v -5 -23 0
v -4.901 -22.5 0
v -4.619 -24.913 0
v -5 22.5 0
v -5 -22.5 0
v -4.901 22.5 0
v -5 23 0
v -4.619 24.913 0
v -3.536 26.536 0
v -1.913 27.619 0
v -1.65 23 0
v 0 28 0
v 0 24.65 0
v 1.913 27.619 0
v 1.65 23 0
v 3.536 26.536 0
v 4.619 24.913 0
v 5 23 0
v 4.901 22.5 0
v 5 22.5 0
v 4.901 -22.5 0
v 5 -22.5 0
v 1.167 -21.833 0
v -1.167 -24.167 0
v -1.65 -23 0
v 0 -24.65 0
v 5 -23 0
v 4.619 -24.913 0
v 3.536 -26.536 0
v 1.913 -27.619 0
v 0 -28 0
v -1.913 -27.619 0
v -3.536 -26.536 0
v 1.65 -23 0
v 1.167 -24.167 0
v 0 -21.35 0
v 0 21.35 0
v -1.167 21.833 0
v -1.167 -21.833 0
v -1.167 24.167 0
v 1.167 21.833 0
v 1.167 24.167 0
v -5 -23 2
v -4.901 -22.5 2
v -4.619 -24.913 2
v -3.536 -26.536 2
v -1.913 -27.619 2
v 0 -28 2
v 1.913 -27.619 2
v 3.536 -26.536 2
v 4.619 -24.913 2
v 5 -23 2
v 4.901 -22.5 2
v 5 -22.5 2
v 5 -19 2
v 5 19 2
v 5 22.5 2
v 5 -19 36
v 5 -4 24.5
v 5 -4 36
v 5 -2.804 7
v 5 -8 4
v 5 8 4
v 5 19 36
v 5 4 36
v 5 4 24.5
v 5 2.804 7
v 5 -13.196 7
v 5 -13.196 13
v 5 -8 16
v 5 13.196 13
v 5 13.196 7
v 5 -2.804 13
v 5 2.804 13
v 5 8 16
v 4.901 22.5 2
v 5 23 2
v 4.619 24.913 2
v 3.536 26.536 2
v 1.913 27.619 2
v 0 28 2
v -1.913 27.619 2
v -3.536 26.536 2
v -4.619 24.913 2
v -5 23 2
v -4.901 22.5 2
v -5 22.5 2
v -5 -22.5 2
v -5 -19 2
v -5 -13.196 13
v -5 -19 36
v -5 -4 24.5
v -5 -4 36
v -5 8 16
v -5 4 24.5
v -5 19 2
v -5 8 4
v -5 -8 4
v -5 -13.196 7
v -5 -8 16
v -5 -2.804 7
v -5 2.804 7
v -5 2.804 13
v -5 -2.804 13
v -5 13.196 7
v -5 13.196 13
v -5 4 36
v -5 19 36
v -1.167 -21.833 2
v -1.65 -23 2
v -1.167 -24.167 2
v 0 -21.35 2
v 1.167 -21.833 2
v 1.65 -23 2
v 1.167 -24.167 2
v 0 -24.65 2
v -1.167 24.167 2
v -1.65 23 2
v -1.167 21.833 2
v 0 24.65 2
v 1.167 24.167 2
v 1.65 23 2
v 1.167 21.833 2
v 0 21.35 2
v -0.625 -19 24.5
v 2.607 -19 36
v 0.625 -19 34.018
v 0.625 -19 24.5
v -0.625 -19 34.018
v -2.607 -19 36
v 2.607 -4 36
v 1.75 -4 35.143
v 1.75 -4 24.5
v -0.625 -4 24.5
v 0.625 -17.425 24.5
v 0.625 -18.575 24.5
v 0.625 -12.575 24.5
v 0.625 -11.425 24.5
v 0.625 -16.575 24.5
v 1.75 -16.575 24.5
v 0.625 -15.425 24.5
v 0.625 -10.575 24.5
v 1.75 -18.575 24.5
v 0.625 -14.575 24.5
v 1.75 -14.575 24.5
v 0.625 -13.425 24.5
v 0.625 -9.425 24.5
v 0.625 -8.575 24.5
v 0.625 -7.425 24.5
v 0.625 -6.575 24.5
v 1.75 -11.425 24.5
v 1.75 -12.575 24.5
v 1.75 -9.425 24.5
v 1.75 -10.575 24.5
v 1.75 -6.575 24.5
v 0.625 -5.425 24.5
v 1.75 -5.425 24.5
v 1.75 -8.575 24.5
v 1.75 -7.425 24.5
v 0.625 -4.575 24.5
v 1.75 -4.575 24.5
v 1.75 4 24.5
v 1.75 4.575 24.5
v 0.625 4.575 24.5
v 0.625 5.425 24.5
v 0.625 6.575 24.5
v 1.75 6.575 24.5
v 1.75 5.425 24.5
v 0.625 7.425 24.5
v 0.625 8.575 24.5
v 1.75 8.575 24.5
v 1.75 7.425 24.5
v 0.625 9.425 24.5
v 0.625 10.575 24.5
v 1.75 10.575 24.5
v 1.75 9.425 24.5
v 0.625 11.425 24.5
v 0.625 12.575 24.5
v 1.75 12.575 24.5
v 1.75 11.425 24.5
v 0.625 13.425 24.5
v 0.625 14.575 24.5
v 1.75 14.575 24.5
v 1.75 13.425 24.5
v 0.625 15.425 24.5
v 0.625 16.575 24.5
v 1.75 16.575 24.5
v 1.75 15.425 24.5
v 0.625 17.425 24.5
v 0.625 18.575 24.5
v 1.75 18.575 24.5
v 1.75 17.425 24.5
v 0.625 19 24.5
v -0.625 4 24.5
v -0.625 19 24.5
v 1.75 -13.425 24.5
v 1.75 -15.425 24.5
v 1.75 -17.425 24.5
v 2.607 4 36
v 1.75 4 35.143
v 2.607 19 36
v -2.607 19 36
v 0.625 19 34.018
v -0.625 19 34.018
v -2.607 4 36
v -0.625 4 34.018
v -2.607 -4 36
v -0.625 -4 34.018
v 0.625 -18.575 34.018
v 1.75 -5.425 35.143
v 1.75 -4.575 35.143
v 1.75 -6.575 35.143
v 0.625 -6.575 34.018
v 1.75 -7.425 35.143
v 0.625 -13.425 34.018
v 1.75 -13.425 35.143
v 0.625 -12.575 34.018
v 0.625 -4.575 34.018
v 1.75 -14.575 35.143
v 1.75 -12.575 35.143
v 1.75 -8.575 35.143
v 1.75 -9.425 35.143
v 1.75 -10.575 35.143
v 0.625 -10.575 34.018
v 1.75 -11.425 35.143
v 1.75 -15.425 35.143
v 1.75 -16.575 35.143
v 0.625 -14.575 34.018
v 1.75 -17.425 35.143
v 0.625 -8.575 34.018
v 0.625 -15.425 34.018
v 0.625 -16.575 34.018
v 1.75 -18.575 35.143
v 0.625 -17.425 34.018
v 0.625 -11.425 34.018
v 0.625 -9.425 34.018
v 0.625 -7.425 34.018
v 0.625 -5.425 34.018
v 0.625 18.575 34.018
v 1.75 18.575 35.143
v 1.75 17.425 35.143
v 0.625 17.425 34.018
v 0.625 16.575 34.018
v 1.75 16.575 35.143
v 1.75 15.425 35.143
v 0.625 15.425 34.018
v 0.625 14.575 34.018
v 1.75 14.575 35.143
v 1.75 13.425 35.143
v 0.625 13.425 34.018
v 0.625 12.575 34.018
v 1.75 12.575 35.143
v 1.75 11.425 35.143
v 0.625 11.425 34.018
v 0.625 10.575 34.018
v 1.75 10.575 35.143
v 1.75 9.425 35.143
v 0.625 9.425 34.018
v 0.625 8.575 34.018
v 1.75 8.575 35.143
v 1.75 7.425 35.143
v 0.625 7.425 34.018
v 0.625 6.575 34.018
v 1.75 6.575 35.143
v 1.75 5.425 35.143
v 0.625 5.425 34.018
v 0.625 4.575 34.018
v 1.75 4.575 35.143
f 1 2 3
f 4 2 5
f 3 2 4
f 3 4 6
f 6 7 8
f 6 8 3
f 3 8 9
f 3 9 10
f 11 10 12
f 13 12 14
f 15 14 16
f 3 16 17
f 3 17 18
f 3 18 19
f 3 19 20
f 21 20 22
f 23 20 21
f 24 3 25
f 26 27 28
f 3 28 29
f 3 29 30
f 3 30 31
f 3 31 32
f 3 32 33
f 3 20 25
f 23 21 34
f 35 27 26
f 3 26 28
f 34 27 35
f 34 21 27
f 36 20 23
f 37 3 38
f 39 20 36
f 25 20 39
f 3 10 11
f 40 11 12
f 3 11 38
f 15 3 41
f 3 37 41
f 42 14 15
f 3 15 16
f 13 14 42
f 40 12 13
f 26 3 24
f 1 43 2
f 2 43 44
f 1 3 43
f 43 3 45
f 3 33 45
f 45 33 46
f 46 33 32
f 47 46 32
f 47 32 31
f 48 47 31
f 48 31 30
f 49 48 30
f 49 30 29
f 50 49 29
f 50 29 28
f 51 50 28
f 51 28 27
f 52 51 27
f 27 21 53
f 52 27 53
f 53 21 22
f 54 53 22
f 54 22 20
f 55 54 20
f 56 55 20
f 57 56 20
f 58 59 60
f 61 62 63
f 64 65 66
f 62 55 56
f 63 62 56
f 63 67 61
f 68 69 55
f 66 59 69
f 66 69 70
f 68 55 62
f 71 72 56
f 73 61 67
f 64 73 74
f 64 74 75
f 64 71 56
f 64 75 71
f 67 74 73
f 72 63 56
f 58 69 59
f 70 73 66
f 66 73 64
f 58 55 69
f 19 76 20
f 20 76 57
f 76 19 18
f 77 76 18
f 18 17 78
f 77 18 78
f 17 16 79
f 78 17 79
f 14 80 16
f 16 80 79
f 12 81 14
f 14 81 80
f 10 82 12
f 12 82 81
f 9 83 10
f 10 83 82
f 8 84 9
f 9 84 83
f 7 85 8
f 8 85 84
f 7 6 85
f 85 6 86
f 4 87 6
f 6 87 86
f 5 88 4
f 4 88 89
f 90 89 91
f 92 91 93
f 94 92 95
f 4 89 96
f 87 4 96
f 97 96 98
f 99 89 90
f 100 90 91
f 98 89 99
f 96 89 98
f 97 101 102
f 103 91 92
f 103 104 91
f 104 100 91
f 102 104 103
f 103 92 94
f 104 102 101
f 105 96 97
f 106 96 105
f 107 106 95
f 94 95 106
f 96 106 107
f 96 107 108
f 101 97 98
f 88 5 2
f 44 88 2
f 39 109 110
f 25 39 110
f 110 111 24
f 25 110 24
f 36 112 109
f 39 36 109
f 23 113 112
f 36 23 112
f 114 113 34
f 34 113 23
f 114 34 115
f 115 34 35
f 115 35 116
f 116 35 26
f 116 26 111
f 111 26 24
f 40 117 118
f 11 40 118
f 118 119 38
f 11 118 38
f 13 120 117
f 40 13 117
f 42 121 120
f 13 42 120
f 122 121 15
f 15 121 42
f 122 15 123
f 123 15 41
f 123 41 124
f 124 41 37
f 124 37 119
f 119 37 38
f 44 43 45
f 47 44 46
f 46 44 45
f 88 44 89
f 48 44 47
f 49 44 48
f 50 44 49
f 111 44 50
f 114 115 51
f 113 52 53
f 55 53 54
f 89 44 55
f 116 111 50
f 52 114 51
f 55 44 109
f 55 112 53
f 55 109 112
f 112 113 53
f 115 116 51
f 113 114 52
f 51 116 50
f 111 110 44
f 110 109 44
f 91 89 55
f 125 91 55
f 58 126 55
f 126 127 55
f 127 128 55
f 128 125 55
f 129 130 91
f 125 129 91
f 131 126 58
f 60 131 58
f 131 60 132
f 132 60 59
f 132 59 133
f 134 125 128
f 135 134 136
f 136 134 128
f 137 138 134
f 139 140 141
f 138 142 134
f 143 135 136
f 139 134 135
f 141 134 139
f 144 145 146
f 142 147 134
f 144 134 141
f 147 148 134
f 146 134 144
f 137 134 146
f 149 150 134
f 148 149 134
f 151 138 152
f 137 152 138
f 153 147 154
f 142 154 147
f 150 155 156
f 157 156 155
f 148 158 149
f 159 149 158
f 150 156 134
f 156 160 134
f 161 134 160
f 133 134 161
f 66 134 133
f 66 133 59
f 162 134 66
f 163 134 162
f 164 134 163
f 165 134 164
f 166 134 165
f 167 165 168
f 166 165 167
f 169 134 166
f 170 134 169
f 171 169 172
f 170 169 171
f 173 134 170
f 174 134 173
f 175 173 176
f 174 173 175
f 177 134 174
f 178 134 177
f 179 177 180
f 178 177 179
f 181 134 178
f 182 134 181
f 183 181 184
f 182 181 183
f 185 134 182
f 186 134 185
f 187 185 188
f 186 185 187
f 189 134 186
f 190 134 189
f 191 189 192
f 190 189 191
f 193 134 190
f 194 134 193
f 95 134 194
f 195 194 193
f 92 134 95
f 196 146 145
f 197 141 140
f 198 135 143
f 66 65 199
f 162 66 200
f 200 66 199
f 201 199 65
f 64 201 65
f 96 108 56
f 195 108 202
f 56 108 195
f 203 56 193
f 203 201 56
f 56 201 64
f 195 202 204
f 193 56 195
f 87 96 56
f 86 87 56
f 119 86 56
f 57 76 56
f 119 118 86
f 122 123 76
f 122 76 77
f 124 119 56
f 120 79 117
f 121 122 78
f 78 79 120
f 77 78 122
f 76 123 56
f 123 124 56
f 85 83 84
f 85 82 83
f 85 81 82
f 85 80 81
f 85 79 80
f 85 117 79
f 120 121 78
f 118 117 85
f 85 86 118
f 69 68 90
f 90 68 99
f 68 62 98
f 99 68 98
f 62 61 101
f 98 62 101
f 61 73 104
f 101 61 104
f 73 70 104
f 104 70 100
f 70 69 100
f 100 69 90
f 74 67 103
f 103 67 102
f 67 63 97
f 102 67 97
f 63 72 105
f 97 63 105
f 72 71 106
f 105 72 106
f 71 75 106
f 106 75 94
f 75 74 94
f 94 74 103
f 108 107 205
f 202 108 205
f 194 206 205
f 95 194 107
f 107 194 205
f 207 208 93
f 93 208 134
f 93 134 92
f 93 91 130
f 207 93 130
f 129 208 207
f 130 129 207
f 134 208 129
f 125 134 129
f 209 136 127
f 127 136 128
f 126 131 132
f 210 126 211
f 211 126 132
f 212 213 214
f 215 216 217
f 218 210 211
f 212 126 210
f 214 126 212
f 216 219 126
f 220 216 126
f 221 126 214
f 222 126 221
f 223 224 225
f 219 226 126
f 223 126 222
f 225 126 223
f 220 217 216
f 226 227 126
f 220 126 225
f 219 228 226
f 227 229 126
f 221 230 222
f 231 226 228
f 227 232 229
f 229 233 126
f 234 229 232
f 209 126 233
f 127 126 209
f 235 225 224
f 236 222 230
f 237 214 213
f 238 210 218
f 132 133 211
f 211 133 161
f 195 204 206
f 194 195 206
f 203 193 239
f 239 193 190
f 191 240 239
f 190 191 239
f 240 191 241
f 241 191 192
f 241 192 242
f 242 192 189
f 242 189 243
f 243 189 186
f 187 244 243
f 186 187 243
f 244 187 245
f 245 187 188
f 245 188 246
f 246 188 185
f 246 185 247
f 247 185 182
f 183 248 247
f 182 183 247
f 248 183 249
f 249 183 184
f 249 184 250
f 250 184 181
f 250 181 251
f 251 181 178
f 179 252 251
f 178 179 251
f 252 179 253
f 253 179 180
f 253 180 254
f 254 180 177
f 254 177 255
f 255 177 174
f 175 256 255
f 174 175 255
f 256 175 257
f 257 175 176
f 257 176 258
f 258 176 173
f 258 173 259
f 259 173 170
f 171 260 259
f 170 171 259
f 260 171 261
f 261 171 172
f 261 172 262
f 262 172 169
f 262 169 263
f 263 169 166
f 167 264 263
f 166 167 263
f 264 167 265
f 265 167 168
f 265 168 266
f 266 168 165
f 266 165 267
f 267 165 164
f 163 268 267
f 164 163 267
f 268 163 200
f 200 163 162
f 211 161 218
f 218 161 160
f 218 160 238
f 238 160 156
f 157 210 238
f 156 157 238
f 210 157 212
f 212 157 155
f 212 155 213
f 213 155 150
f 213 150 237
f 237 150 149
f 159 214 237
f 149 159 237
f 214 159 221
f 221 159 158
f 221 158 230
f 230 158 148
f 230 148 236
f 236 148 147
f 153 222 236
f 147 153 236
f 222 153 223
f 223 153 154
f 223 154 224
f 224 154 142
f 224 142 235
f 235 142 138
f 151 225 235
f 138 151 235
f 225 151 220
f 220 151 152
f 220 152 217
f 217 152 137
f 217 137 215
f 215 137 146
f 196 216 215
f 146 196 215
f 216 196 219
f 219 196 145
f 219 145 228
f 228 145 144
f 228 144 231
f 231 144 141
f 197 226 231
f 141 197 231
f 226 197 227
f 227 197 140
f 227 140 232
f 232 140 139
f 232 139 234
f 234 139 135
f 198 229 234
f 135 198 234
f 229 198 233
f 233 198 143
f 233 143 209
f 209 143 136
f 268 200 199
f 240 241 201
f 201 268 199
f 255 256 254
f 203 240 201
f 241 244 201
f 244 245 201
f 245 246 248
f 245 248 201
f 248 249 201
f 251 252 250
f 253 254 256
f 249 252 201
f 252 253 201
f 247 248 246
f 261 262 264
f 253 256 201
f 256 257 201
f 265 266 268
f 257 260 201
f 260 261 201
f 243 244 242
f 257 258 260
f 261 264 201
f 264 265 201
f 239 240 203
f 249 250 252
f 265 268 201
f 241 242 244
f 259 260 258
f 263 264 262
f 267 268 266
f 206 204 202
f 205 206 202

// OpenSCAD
// AIR HOCKEY ROBOT PROJECT (AHROBOT)
// 
// by Jose Julio

// X axis carriage belt holder

diameter = 80;
rod_separation=45;
bearing_diameter=15.5;
bearing_length=26;


module border()
{
	difference()
	{
	cylinder (r=diameter/2, h=4.5,center=true,$fn=80);
	cylinder (r=diameter/2-4.5, h=6,center=true,$fn=80);
	}
}

module x_carriage_beltcut(){
 // Cut in the middle for belt
 translate([0,0,12]) cube([8,25,15],center=true);
 // Cut clearing space for the belt
 //translate([-38,5,8]) cube([40,13,15]);
 // Belt slit
 translate([0,0,12]) cube([80,1.25,15],center=true);
 // Smooth entrance
 translate([0,0,24]) rotate([45,0,0]) cube([80,15,15],center=true);
 // Smooth the block on the upper side
 //translate([-66,27,15]) rotate([30,0,0]) cube([80,15,15]);
 // Teeth cuts (GT2)
 for ( i = [-16 : 16] ){
  translate([-i*2,-1,12]) cube([1.15,1.5,15],center=true);
 }
}

module belt()
{
	difference()
	{
	union()
		{
		translate ([0,0,1]) cube([10,45,2],center=true);
		translate([0,23,1]) cylinder(r=5,h=2,center=true,$fn=16);
		translate([0,-23,1]) cylinder(r=5,h=2,center=true,$fn=16);
		}
	union()
		{
		// holes for belt
		translate([0,23,0]) cylinder(r=1.65,h=20,center=true,$fn=8);
		translate([0,-23,0]) cylinder(r=1.65,h=20,center=true,$fn=8);	
		}
	}	
	difference()
	{
	translate ([0,0,18]) cube([10,38,36],center=true);
	union()
		{
		translate([0,0,20]) rotate([0,0,90]) x_carriage_beltcut();
		// holes
		translate([0,-8,10]) rotate([0,90,0]) cylinder(r=6,h=100,center=true,$fn=6);
		translate([0,8,10]) rotate([0,90,0]) cylinder(r=6,h=100,center=true,$fn=6);
		}
	}
}

module x_carriage_base()
{	
	cylinder (r=diameter/2, h=2,center=true,$fn=80);
	translate([0,0,2]) border();

	// bearing bases
	translate([rod_separation/2,0,5]) cube([20,bearing_length,10],center=true);
	translate([-rod_separation/2,0,5]) cube([20,bearing_length,10],center=true);

	//belt();
}

module x_carriage_holes()
{
	// bearing holes
	translate([rod_separation/2,0,-2]) horizontal_bearing_holes();
	translate([-rod_separation/2,0,-2]) horizontal_bearing_holes();

	// holes for belt
	translate([7.5,23,0]) cylinder(r=1.65,h=20,center=true,$fn=8);
	translate([7.5,-23,0]) cylinder(r=1.65,h=20,center=true,$fn=8);
	translate([-7.5,23,0]) cylinder(r=1.65,h=20,center=true,$fn=8);
	translate([-7.5,-23,0]) cylinder(r=1.65,h=20,center=true,$fn=8);
	

	// M3 holes
	translate([0,-30,0]) cylinder(r=1.7,h=20,center=true,$fn=8);
	translate([15,-28,0]) cylinder(r=1.7,h=20,center=true,$fn=8);
	translate([-15,-28,0]) cylinder(r=1.7,h=20,center=true,$fn=8);
	translate([0,30,0]) cylinder(r=1.7,h=20,center=true,$fn=8);
	translate([15,28,0]) cylinder(r=1.7,h=20,center=true,$fn=8);
	translate([-15,28,0]) cylinder(r=1.7,h=20,center=true,$fn=8);

	translate([rod_separation/2,-20,0]) cylinder(r=1.7,h=20,center=true,$fn=8);
	translate([rod_separation/2,20,0]) cylinder(r=1.7,h=20,center=true,$fn=8);
	translate([-rod_separation/2,-20,0]) cylinder(r=1.7,h=20,center=true,$fn=8);
	translate([-rod_separation/2,20,0]) cylinder(r=1.7,h=20,center=true,$fn=8);
}


module border_pusher()
{
	difference()
	{
	cylinder (r=diameter/2, h=12.5,$fn=80);
	cylinder (r=diameter/2-5, h=15,$fn=80);
	}
}

module x_carriage_pusher_base()
{	
	cylinder (r=diameter/2, h=2,$fn=80);
	translate([0,0,0]) border_pusher();

	translate([30,0,5.5]) cube([10,5,11],center=true);
	rotate([0,0,25])translate([30,0,5.5]) cube([10,5,11],center=true);
	rotate([0,0,-25])translate([30,0,5.5]) cube([10,5,11],center=true);
	
}


module x_carriage_pusher_holes()
{
	cylinder (r=diameter/2-14, h=50,center=true,$fn=80);	

	// M3 holes
	translate([0,-30,0]) cylinder(r=1.7,h=20,center=true,$fn=8);
	translate([15,-28,0]) cylinder(r=1.7,h=20,center=true,$fn=8);
	translate([-15,-28,0]) cylinder(r=1.7,h=20,center=true,$fn=8);
	translate([0,30,0]) cylinder(r=1.7,h=20,center=true,$fn=8);
	translate([15,28,0]) cylinder(r=1.7,h=20,center=true,$fn=8);
	translate([-15,28,0]) cylinder(r=1.7,h=20,center=true,$fn=8);

	translate([rod_separation/2,-20,0]) cylinder(r=1.7,h=20,center=true,$fn=8);
	translate([rod_separation/2,20,0]) cylinder(r=1.7,h=20,center=true,$fn=8);
	translate([-rod_separation/2,-20,0]) cylinder(r=1.7,h=20,center=true,$fn=8);
	translate([-rod_separation/2,20,0]) cylinder(r=1.7,h=20,center=true,$fn=8);

	// holes for belt
	translate([7.5,23,0]) cylinder(r=4,h=20,center=true,$fn=8);
	translate([7.5,-23,0]) cylinder(r=4,h=20,center=true,$fn=8);
	translate([-7.5,23,0]) cylinder(r=4,h=20,center=true,$fn=8);
	translate([-7.5,-23,0]) cylinder(r=4,h=20,center=true,$fn=8);
}


/*
difference()
{
x_carriage_base();
x_carriage_holes();
}
*/
/*
difference()
{
x_carriage_pusher_base();
x_carriage_pusher_holes();
}
*/

belt();
